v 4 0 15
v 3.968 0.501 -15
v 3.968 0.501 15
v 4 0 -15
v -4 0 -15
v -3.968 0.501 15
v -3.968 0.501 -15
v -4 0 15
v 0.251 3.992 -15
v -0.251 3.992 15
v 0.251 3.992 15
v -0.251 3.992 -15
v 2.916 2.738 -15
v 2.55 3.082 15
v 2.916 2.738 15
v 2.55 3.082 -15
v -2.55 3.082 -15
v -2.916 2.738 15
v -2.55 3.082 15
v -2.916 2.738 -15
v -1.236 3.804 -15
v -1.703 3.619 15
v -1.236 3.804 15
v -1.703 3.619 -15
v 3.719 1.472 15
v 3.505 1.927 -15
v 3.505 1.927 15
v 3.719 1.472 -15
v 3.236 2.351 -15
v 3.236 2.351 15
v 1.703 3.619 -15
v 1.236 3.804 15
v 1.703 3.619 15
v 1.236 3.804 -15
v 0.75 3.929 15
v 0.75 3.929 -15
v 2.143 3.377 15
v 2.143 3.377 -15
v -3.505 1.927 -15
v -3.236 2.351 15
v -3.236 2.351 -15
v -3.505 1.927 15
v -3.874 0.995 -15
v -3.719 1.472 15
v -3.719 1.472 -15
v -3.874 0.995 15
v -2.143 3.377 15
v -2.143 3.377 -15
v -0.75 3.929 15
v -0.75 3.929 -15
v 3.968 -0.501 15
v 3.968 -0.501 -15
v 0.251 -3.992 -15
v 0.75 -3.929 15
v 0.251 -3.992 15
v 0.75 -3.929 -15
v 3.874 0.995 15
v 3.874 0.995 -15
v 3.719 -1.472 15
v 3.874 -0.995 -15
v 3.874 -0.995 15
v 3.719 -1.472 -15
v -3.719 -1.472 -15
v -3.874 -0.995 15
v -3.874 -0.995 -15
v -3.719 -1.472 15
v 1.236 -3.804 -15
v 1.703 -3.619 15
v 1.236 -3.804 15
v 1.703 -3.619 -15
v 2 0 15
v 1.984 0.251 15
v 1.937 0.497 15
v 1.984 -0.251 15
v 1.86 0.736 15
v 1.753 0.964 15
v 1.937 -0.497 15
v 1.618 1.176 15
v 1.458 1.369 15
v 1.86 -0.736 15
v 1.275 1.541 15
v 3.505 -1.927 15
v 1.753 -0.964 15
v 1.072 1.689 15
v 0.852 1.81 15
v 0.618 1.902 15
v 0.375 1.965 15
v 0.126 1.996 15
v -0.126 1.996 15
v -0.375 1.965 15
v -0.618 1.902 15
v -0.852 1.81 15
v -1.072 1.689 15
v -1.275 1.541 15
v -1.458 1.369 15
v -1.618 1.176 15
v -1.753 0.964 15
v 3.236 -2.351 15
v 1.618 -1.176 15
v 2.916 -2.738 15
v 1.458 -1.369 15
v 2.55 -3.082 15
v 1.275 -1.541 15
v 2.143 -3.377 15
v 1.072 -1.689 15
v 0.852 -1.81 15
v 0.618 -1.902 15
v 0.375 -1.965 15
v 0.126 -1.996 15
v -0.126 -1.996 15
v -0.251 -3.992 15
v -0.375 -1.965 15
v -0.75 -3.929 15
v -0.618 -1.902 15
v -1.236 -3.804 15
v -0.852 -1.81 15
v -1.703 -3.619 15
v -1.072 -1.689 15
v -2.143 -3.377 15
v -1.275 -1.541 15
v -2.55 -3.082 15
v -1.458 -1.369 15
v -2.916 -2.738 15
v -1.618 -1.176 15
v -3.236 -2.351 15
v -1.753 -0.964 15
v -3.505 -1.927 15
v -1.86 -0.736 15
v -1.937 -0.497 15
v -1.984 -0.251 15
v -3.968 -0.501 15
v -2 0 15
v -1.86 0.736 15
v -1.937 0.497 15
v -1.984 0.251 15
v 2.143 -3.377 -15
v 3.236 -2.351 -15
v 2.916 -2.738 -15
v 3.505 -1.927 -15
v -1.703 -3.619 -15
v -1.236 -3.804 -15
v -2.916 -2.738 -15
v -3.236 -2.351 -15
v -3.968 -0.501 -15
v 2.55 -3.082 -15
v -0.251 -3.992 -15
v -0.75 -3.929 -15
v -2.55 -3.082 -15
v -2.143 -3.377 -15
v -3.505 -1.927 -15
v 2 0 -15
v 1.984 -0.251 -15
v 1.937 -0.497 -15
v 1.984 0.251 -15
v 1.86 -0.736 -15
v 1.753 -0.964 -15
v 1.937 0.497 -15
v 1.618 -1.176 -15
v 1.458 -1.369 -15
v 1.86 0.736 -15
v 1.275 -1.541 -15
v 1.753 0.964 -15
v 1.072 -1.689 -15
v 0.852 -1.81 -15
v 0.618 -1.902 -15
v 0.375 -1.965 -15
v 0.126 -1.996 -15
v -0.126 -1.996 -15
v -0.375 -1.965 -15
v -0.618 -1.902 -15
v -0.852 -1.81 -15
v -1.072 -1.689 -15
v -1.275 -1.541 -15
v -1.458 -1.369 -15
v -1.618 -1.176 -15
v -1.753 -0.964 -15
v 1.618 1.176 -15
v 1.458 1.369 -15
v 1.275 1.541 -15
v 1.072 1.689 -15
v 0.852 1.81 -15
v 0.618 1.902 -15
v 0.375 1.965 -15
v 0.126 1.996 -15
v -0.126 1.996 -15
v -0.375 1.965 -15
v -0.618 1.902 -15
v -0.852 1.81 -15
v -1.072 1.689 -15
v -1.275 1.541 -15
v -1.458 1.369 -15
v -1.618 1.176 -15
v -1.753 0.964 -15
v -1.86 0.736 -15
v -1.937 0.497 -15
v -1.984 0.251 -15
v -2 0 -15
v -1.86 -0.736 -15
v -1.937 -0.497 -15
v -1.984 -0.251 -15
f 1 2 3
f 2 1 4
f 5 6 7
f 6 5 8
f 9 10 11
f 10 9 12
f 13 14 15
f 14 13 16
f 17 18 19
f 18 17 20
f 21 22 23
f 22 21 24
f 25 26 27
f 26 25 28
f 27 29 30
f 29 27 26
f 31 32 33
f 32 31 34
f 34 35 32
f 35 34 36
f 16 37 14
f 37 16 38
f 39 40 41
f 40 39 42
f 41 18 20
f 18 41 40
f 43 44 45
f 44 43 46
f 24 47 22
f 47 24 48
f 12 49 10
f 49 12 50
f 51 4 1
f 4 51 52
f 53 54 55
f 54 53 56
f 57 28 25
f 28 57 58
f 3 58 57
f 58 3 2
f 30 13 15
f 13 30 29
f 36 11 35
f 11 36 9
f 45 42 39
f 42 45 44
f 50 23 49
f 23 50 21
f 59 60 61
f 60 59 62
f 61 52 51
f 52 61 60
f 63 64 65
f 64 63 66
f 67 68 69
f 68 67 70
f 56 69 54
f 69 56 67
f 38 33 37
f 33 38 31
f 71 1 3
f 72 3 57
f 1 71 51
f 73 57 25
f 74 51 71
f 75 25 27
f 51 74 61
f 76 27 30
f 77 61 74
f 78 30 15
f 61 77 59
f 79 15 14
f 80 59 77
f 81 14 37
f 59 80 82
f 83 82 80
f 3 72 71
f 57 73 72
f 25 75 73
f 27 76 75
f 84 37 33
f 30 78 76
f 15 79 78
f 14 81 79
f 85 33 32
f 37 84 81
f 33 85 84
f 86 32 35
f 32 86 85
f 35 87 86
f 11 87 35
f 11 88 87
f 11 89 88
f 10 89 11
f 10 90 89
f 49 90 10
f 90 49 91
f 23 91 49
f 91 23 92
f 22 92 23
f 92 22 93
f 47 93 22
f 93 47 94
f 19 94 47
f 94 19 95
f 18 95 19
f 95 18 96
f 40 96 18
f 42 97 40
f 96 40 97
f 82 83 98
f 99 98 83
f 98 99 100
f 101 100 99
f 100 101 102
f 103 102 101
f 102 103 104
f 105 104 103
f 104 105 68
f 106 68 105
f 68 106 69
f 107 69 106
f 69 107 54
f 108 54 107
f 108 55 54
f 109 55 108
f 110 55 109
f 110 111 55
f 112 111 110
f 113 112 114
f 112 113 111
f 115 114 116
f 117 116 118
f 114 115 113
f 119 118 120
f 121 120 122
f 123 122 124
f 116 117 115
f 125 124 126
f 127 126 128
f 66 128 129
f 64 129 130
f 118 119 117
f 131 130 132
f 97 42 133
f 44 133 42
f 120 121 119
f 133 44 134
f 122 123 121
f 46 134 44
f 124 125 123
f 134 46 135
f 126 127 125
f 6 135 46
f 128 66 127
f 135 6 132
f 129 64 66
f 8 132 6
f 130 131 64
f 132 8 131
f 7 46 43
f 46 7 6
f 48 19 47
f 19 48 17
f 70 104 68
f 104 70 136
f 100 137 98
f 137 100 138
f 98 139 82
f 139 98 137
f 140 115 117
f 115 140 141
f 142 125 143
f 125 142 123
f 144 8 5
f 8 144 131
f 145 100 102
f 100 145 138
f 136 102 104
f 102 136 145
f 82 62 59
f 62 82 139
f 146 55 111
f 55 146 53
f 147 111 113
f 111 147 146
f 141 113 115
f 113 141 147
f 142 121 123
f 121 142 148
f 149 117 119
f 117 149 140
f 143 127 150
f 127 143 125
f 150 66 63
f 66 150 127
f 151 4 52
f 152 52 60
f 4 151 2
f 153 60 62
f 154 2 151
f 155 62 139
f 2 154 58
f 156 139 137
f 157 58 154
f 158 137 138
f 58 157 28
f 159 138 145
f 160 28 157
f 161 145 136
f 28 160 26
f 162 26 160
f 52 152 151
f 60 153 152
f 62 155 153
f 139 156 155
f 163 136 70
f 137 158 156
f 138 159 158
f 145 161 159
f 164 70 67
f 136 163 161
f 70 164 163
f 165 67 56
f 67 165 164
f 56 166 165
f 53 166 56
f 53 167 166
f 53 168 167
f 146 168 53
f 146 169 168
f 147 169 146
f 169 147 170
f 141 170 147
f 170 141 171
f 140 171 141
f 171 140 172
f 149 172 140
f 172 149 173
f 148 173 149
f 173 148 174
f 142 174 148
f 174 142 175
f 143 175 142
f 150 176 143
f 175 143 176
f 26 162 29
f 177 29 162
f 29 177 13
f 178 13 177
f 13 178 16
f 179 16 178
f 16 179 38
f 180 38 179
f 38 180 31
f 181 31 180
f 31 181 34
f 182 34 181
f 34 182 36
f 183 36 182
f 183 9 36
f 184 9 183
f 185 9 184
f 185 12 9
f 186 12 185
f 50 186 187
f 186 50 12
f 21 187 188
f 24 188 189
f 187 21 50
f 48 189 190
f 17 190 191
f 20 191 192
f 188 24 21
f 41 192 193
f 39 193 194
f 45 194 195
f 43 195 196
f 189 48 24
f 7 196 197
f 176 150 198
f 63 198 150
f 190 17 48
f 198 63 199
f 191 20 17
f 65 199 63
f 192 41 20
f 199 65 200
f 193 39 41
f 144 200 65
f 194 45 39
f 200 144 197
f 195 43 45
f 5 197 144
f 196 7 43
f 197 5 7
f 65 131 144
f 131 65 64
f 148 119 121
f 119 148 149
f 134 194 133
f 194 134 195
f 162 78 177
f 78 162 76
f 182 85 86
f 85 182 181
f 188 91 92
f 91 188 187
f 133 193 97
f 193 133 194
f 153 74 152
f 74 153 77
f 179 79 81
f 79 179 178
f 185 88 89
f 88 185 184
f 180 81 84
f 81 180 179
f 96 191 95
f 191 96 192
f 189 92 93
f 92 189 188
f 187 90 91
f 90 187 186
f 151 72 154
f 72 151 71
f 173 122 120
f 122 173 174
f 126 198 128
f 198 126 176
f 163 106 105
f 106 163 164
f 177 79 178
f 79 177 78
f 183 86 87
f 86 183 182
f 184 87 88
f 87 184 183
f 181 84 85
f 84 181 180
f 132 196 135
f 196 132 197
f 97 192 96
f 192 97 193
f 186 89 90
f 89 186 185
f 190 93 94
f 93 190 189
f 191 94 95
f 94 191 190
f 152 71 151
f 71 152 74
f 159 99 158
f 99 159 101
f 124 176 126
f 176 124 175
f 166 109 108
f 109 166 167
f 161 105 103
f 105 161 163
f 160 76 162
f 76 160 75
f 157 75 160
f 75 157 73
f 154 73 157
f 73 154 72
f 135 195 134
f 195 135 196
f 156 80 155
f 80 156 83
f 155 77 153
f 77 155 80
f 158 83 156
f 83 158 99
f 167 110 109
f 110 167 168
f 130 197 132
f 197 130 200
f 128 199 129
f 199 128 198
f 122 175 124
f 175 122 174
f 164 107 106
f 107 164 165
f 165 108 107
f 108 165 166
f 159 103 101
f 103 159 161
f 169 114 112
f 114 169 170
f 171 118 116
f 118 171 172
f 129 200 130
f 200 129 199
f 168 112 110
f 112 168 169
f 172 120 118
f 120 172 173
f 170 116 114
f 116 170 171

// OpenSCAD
$fn = 50;


difference() {
	union() {
		translate(v = [0, 0, -15.0000000000]) {
			cylinder(h = 30, r = 4.0000000000);
		}
	}
	union() {
		translate(v = [0, 0, -100.0000000000]) {
			cylinder(h = 200, r = 2.0000000000);
		}
	}
}
